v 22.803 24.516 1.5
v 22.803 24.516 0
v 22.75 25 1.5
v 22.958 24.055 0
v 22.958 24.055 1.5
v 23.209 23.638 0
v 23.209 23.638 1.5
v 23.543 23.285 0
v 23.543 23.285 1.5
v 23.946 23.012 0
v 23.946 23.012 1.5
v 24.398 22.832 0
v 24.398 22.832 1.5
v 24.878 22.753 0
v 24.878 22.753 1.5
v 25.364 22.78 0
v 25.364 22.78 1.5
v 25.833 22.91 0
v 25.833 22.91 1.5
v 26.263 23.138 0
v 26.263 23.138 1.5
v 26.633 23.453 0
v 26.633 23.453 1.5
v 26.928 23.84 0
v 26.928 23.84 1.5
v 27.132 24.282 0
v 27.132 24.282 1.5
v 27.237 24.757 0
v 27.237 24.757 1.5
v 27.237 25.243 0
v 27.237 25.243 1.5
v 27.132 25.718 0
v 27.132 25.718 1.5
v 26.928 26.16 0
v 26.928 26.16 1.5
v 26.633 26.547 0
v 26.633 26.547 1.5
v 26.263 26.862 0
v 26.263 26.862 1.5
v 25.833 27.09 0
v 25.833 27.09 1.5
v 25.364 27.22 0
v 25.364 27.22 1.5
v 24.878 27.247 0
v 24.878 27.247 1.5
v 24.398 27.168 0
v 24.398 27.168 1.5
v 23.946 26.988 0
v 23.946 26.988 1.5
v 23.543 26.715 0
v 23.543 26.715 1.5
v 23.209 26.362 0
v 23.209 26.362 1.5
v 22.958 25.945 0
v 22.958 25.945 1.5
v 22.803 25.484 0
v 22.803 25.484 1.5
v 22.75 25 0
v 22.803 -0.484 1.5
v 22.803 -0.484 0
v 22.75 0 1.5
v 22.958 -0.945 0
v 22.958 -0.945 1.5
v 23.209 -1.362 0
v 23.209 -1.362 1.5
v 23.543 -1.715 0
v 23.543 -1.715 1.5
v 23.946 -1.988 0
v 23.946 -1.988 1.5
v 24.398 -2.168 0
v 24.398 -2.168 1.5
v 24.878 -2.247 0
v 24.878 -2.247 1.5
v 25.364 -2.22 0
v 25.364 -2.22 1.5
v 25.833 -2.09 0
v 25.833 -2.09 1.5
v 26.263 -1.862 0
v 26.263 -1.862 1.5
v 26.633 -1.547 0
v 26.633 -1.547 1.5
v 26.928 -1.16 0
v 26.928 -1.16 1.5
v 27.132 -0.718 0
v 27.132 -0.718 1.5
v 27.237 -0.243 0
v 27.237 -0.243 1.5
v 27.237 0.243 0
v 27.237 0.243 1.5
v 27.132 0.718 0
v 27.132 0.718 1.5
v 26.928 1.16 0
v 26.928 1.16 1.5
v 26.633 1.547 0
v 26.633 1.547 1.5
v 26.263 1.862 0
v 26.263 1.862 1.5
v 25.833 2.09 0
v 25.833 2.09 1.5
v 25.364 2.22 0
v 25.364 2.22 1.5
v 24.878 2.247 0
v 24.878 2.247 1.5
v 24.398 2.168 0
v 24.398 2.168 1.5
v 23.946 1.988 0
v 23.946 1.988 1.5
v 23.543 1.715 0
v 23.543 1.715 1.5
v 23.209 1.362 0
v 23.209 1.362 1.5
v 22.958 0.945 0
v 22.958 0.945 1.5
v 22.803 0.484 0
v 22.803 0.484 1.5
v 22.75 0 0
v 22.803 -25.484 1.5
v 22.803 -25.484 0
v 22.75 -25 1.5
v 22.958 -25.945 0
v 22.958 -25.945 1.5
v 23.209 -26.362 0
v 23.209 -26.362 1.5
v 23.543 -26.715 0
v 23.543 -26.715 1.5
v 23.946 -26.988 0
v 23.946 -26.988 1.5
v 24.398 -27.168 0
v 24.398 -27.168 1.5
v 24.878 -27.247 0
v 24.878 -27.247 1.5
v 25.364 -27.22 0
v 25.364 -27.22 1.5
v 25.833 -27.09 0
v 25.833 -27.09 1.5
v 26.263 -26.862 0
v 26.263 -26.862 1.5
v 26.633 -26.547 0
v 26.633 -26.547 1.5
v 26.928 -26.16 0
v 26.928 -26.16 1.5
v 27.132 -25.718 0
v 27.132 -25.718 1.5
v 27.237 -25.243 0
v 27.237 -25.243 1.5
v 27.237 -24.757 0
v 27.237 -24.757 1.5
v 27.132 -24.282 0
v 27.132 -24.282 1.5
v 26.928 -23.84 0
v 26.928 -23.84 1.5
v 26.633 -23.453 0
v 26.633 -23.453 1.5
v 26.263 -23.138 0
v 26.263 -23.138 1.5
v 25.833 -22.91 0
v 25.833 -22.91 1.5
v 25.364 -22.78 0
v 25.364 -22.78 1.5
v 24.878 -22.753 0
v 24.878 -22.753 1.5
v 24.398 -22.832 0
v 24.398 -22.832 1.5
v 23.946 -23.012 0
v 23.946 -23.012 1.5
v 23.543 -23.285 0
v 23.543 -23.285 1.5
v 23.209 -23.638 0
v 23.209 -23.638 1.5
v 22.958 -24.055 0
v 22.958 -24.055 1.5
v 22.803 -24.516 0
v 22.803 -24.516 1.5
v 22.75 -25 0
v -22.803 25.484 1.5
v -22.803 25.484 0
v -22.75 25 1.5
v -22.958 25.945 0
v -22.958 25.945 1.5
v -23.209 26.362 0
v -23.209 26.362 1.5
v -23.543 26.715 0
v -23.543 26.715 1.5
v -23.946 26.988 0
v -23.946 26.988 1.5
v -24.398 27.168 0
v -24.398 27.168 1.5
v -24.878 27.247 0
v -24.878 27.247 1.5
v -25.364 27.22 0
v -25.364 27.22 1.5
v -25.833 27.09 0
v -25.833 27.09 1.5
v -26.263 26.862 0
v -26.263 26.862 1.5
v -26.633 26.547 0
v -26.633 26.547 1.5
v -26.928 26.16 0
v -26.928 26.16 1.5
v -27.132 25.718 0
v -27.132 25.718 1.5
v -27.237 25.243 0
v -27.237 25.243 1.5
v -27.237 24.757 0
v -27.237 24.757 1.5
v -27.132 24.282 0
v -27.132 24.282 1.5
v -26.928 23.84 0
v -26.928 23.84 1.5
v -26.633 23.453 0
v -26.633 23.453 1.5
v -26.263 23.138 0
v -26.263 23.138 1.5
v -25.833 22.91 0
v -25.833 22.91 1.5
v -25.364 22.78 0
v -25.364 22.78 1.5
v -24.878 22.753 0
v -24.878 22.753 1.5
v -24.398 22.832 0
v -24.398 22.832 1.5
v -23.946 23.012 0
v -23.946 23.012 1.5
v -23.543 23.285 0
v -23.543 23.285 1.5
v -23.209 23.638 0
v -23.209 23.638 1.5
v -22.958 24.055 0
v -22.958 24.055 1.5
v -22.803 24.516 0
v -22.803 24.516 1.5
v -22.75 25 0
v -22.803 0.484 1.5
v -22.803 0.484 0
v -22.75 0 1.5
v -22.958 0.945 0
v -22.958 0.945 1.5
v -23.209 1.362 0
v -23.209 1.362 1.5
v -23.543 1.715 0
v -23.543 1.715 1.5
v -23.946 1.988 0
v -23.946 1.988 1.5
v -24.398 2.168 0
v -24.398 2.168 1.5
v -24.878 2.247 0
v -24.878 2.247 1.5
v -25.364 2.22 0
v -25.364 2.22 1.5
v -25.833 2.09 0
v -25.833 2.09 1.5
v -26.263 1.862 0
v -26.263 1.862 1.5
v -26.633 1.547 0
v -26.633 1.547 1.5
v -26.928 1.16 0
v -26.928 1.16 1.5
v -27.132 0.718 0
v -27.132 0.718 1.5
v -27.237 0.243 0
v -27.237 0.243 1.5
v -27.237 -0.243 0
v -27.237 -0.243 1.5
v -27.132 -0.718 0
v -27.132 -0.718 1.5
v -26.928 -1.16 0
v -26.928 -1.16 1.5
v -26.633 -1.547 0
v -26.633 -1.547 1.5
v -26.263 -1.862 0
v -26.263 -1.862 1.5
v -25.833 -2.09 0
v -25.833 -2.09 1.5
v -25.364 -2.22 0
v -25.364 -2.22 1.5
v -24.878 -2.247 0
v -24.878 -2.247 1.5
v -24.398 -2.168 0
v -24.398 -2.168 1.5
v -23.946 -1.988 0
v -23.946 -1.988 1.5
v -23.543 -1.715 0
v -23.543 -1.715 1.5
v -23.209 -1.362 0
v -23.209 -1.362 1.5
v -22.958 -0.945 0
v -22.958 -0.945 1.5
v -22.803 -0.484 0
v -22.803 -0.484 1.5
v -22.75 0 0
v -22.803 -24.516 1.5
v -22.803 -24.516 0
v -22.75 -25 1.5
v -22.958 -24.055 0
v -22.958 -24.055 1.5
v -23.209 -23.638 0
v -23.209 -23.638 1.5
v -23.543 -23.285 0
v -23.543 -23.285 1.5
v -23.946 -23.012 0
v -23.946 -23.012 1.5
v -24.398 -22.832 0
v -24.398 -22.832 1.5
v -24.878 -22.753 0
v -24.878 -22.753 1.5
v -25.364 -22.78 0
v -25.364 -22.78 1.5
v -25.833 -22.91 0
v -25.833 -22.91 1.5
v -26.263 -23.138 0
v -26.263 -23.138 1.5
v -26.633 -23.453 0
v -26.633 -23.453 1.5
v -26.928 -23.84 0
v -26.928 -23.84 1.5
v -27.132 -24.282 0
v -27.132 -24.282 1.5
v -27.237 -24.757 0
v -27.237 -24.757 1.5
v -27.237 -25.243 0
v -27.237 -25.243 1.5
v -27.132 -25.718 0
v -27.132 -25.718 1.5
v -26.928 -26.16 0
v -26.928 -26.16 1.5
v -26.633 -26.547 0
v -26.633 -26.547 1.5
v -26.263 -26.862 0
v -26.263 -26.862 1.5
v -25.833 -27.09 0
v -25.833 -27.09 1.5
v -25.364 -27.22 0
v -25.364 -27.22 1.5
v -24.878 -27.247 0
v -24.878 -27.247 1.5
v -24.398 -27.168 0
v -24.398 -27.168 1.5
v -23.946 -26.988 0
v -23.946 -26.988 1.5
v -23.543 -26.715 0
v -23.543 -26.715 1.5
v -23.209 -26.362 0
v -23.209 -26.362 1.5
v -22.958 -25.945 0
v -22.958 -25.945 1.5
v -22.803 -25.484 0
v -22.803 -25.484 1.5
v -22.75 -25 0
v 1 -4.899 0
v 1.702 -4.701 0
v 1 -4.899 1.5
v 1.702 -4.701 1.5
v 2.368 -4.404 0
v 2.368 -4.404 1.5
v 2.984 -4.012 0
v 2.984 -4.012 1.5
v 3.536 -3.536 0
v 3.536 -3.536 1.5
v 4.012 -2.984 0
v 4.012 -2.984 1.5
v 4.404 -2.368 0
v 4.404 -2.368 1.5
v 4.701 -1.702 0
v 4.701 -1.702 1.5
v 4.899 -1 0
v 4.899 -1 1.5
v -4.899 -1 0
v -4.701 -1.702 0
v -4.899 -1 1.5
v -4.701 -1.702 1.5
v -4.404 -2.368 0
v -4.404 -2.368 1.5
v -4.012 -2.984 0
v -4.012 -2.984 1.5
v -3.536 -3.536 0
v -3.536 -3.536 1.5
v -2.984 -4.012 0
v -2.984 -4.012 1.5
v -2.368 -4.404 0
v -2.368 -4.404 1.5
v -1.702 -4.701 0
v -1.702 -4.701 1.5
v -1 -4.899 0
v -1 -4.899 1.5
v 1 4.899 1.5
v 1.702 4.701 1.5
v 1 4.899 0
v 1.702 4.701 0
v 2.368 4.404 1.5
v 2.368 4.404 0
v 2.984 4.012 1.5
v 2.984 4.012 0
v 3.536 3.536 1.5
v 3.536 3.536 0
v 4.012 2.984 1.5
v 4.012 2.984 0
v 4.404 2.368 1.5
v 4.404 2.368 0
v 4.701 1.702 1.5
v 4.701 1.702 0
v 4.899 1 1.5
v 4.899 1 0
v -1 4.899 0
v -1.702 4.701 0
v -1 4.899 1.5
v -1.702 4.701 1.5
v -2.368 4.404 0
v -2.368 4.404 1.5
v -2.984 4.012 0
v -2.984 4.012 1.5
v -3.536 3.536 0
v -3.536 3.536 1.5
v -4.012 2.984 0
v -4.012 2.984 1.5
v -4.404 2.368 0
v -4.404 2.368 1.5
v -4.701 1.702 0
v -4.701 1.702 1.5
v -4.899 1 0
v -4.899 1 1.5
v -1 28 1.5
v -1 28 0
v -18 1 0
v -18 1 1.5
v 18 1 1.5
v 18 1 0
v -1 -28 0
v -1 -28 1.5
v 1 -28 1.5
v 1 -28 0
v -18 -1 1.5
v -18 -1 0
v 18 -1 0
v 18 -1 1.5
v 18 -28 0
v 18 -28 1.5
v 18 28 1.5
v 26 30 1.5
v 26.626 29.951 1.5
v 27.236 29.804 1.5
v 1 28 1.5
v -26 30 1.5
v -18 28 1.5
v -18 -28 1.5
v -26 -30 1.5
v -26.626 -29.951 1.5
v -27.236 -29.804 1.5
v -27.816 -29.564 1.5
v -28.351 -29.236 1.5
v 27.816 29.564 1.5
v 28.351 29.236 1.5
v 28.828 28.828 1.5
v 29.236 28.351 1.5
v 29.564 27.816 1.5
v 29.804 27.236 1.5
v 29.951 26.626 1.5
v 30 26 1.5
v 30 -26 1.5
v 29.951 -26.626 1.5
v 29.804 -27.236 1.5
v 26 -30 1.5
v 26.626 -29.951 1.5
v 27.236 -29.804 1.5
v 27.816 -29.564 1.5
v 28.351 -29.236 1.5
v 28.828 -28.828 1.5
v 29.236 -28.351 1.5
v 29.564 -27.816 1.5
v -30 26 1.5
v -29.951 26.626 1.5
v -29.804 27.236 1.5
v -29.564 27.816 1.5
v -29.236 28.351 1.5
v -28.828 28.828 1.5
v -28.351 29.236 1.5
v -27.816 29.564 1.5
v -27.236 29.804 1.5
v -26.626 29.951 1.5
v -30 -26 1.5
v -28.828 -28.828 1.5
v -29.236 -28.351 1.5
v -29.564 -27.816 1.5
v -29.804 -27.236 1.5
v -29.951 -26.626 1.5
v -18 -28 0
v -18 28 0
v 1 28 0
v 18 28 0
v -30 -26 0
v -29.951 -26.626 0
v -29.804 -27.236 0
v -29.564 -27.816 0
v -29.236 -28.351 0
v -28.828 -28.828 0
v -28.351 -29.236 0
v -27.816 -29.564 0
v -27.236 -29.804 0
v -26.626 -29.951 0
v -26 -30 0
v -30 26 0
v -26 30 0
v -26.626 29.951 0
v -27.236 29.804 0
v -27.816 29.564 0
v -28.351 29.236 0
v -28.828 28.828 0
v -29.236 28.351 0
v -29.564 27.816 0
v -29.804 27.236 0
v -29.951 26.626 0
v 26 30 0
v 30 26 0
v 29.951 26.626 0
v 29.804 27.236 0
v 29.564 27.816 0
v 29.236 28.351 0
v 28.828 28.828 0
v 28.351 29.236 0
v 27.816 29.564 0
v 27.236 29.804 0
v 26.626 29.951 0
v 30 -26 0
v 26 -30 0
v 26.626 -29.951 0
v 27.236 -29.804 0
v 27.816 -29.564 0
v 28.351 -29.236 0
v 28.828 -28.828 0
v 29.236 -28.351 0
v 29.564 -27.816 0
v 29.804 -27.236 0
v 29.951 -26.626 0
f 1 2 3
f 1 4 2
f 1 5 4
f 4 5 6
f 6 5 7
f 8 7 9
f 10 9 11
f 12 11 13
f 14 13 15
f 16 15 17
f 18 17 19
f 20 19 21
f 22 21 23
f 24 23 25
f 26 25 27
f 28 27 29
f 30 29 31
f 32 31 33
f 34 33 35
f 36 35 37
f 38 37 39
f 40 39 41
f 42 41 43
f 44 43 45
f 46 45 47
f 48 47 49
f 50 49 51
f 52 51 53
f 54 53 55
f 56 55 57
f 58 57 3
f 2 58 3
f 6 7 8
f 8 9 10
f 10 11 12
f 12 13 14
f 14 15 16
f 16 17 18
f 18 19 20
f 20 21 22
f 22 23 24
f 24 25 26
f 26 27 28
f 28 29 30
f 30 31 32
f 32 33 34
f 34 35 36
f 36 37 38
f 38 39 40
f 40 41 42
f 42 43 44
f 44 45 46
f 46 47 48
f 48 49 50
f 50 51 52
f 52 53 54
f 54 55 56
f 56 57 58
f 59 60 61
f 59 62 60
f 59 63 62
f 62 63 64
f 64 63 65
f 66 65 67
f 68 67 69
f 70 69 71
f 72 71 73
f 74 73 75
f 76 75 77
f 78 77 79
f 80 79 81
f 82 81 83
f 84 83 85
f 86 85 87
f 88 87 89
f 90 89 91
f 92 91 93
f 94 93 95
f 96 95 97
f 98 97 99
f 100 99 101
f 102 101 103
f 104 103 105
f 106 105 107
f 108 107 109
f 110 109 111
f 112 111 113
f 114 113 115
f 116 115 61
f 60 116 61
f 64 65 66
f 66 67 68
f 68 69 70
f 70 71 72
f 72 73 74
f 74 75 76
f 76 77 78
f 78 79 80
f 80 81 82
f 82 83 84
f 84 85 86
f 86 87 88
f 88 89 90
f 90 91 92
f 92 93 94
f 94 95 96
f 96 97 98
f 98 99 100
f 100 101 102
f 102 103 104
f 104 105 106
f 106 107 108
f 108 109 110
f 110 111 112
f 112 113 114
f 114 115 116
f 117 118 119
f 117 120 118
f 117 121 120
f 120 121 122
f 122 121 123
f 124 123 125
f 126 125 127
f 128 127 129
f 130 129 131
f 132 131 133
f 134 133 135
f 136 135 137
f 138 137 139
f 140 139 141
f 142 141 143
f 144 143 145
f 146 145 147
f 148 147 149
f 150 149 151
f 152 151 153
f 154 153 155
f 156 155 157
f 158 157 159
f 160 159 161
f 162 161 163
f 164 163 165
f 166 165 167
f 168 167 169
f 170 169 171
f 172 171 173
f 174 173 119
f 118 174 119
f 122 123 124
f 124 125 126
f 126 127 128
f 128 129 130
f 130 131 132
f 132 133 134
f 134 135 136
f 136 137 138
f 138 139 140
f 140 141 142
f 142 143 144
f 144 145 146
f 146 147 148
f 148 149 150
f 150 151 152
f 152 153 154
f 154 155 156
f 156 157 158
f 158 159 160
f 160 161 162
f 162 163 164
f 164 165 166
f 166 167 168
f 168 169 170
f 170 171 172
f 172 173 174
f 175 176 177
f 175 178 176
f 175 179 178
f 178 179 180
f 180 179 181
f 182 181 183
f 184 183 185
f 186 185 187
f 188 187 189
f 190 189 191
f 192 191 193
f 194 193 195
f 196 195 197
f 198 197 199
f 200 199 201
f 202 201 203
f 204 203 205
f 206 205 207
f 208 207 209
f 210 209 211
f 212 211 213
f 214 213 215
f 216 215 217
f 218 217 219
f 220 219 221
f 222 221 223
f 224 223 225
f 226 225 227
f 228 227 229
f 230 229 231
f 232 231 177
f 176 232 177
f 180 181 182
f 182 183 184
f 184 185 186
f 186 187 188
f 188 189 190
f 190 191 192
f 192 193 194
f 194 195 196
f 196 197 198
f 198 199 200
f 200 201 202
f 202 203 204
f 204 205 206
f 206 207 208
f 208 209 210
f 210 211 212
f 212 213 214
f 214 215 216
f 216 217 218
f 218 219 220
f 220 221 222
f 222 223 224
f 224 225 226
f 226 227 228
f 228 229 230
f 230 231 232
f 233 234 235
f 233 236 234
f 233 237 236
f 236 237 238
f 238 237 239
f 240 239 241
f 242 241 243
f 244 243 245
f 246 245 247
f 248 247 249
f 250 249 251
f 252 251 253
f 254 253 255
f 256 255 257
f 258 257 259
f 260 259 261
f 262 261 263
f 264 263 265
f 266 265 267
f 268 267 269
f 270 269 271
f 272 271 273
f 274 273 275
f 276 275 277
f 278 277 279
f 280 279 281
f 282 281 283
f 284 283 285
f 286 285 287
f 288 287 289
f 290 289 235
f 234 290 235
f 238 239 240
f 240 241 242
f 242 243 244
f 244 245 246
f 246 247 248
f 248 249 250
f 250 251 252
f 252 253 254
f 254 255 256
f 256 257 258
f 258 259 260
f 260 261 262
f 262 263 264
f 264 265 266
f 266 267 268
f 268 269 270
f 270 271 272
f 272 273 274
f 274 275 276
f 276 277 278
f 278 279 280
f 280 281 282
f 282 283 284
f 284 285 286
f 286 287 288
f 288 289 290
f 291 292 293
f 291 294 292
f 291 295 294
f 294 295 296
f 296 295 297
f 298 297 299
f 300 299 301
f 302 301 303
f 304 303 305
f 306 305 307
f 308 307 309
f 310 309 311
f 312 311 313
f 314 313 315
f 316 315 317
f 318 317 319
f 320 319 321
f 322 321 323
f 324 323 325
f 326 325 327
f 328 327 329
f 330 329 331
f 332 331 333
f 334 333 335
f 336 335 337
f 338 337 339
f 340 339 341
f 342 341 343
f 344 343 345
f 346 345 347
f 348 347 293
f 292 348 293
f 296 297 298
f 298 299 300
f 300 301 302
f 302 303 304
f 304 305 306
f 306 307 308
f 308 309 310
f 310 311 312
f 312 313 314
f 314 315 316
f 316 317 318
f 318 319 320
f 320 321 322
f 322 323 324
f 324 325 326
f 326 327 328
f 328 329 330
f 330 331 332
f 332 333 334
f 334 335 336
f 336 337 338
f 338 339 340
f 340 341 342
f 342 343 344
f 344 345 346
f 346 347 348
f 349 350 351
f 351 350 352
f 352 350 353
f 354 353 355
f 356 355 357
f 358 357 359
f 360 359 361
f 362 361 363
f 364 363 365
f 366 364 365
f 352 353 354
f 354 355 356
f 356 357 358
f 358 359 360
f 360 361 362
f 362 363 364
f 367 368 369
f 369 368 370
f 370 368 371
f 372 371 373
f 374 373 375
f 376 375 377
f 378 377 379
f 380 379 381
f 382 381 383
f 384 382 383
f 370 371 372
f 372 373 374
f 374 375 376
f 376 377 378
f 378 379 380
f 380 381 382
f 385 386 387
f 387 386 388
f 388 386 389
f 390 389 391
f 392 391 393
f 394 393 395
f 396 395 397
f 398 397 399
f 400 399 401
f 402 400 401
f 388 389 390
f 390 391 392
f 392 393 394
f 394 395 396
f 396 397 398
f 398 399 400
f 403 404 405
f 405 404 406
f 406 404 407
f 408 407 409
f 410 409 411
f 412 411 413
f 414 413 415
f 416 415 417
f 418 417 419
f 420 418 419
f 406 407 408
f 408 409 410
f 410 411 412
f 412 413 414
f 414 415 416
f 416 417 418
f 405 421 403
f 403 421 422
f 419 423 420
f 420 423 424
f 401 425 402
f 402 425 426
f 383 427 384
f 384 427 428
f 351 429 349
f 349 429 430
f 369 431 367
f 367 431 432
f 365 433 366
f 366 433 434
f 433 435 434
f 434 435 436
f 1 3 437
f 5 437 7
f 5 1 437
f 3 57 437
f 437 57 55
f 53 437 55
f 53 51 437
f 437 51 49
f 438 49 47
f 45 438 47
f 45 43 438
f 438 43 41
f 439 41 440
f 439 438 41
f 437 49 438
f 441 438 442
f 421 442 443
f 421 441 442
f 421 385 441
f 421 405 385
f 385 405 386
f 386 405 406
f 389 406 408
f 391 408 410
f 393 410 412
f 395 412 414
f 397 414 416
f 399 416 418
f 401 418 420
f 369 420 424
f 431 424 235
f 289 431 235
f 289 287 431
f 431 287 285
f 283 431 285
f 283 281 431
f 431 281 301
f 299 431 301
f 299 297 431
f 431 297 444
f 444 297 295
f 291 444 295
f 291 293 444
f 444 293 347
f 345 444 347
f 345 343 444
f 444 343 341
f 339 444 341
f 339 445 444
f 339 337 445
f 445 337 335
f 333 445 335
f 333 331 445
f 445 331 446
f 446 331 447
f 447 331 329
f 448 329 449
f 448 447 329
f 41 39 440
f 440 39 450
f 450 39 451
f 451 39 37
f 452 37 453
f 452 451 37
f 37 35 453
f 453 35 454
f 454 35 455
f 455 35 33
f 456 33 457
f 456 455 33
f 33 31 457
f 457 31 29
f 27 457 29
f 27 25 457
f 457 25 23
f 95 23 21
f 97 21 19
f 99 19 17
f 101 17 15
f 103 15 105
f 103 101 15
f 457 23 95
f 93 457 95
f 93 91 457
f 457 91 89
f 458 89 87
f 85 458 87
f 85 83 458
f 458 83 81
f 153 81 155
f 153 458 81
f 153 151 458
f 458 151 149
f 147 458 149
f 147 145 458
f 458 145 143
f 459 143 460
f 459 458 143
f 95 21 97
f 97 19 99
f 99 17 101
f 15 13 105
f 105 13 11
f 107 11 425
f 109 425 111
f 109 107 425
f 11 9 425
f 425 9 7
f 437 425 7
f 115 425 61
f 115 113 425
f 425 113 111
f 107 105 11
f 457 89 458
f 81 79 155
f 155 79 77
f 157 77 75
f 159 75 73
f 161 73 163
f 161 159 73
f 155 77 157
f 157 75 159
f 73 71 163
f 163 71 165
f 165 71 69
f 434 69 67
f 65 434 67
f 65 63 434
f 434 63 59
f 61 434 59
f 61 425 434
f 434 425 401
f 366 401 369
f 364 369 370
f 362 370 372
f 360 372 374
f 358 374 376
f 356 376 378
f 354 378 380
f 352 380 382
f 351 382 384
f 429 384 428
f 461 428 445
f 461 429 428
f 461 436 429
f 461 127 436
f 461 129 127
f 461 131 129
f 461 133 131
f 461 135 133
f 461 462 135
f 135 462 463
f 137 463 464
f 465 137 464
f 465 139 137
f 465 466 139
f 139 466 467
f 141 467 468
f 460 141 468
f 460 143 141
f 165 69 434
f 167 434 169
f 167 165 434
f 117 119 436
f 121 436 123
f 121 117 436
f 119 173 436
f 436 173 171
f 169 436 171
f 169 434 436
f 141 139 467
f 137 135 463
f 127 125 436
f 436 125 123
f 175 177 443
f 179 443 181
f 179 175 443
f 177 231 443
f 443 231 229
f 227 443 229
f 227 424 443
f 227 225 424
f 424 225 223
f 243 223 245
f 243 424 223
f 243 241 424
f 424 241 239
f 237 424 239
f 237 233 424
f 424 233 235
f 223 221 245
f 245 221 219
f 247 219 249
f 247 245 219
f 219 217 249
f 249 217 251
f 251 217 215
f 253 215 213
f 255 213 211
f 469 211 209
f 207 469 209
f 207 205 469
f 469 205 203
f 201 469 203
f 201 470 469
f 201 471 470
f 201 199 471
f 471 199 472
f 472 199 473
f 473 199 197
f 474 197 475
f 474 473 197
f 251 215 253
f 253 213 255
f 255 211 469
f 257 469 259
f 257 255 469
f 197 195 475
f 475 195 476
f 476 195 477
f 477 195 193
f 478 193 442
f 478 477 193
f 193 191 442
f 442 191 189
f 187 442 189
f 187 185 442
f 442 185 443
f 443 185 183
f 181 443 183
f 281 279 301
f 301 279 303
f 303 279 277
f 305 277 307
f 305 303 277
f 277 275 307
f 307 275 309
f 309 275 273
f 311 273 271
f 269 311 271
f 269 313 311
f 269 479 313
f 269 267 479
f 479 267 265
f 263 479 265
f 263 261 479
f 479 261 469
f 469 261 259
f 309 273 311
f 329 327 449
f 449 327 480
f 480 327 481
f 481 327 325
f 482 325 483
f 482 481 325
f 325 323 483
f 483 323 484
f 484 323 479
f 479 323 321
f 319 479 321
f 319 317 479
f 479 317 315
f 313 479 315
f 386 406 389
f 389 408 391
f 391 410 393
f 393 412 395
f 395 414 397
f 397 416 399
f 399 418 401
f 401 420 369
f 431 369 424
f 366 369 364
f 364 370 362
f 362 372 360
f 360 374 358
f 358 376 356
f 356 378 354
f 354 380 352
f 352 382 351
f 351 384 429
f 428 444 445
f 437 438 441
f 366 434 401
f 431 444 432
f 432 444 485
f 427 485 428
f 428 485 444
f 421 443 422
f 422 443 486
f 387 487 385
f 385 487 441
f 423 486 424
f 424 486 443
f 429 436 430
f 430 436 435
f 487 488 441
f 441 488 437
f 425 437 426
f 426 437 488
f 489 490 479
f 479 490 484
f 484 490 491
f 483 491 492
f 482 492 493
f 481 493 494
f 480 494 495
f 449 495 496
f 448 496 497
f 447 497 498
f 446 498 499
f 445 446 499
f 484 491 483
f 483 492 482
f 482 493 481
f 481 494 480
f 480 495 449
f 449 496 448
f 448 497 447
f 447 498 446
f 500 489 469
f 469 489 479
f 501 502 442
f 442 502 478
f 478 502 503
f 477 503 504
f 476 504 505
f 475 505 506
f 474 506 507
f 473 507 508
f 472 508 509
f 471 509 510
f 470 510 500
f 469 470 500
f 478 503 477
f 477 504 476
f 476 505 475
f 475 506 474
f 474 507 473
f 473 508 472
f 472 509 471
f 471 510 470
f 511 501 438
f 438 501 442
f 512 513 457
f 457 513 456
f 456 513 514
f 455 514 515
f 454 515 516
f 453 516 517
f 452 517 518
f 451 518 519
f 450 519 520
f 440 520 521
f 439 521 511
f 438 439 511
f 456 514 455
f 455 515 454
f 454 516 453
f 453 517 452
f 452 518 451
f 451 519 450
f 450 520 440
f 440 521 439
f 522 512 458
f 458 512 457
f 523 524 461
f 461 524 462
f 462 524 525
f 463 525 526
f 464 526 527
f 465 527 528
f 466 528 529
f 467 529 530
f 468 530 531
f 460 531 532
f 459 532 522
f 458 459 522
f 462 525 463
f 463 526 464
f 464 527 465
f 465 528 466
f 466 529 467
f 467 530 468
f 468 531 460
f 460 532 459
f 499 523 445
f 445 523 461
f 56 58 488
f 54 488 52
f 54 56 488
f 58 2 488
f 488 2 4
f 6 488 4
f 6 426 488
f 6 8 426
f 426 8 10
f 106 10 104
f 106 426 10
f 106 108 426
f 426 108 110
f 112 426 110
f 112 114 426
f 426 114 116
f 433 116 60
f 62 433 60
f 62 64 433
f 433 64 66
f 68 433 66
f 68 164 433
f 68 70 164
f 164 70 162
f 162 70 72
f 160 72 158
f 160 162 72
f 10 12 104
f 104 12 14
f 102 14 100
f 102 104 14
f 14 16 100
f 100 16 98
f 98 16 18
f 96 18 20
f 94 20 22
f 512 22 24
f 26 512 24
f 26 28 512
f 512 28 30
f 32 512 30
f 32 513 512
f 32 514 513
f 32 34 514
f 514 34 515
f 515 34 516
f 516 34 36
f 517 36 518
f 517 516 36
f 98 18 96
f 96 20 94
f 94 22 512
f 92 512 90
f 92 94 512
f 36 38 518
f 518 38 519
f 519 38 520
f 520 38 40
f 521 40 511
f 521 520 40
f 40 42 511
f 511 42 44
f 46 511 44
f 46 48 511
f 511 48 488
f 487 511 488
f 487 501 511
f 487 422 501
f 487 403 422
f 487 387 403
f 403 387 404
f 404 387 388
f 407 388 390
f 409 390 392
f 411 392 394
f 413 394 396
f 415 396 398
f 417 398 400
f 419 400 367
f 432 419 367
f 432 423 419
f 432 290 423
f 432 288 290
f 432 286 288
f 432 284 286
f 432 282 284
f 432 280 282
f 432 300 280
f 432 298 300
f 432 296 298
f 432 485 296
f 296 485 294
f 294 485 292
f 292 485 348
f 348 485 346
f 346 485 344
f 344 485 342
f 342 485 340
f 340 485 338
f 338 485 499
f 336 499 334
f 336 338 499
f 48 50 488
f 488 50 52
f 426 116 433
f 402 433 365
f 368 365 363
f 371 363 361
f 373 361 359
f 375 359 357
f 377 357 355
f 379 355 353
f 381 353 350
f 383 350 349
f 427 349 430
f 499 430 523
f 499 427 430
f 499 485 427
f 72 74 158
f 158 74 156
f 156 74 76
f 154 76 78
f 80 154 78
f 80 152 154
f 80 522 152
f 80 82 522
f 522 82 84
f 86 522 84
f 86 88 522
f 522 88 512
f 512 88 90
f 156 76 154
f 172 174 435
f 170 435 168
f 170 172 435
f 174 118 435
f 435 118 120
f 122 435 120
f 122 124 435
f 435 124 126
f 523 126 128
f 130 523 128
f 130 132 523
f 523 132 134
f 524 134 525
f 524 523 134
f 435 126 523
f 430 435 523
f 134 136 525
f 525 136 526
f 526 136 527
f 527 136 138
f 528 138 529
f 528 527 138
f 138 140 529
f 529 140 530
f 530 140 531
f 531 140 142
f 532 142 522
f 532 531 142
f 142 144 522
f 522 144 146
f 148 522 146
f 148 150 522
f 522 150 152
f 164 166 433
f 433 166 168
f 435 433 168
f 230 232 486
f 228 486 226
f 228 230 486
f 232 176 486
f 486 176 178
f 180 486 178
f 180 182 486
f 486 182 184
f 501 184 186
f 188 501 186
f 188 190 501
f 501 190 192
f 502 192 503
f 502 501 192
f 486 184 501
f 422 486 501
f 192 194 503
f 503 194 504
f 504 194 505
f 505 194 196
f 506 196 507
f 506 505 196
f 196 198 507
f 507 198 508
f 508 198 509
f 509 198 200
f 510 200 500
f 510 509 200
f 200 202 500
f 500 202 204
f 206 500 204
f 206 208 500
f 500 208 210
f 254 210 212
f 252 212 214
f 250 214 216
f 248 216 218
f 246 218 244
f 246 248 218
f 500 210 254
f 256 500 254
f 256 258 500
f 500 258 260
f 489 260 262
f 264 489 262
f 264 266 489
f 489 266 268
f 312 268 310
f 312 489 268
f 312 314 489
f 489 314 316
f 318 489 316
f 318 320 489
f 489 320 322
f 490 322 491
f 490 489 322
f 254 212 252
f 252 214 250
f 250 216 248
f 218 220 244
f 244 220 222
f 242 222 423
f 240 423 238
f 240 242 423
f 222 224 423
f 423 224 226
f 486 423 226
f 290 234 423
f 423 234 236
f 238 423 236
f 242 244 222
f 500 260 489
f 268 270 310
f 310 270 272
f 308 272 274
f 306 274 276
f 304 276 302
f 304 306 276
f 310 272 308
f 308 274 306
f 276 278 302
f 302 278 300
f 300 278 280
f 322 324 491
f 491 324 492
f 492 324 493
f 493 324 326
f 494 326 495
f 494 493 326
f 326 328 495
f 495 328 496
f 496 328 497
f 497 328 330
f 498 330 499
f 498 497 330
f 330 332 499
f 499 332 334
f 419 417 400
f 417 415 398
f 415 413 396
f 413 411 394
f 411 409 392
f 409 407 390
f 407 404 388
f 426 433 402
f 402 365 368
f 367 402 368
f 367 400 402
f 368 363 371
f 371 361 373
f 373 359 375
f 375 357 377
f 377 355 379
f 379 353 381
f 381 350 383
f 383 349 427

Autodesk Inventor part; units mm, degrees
ref_plane "YZ Plane" through (0, 0, 0) normal (1, 0, 0) x (0, 1, 0)
ref_plane "XZ Plane" through (0, 0, 0) normal (0, 1, 0) x (-1, 0, 0)
ref_plane "XY Plane" through (0, 0, 0) normal (0, 0, 1) x (1, 0, 0)
sketch "Sketch1" plane through (0, 0, 0) normal (0, 0, 1) x (1, 0, 0)
  line L0 (-20, 30) -> (20, 30)
  line L1 (20, 30) -> (20, -30)
  line L2 (20, -30) -> (-20, -30)
  line L3 (-20, -30) -> (-20, 30)
  line L4 (-20, 30) -> (-26, 30)
  line L5 (-30, 26) -> (-30, -26)
  line L6 (-26, -30) -> (-20, -30)
  line L7 (-20, -30) -> (-20, 30)
  line L8 (20, 30) -> (26, 30)
  line L9 (30, 26) -> (30, -26)
  line L10 (26, -30) -> (20, -30)
  line L11 (20, -30) -> (20, 30)
  line L12 (-43.9092, 0) -> (47.176, 0) construction
  circle A0 centre (-25, 0) radius 2.25
  line L13 (-30, 20) -> (30, 20) construction
  circle A1 centre (-25, 25) radius 2.25
  line L14 (-30, -20) -> (30, -20) construction
  circle A2 centre (-25, -25) radius 2.25
  line L15 (-30, 5) -> (30, 5) construction
  line L16 (-30, -5) -> (30, -5) construction
  line L17 (-28, 18) -> (-22, 18)
  line L18 (-22, 18) -> (-22, 7)
  line L19 (-22, 7) -> (-28, 7)
  line L20 (-28, 7) -> (-28, 18)
  line L21 (-18, 28) -> (18, 28)
  line L22 (18, 28) -> (18, -28)
  line L23 (18, -28) -> (-18, -28)
  line L24 (-18, -28) -> (-18, 28)
  line L25 (-18, 1) -> (18, 1)
  line L26 (18, 1) -> (18, -1)
  line L27 (18, -1) -> (-18, -1)
  line L28 (-18, -1) -> (-18, 1)
  line L29 (-1, 28) -> (1, 28)
  line L30 (1, 28) -> (1, -28)
  line L31 (1, -28) -> (-1, -28)
  line L32 (-1, -28) -> (-1, 28)
  arc A3 (-26, 30) -> (-30, 26) centre (-26, 26) ccw
  arc A4 (-30, -26) -> (-26, -30) centre (-26, -26) ccw
  arc A5 (26, -30) -> (30, -26) centre (26, -26) ccw
  arc A6 (30, 26) -> (26, 30) centre (26, 26) ccw
  circle A7 centre (0, 0) radius 5
  point P0 (0, 30)
  point P1 (20, 0)
  point P2 (-30, -30)
  point P3 (30, -30)
  point P4 (-18, 0)
  point P5 (0, 28)
  dimension "d0" = 40
  dimension "d1" = 60
  dimension "d2" = 10
  dimension "d3" = 10
  dimension "d4" = 4.5
  dimension "d5" = 10
  dimension "d6" = 4.5
  dimension "d7" = 5
  dimension "d8" = 4.5
  dimension "d9" = 5
  dimension "d10" = 5
  dimension "d11" = 5
  dimension "d12" = 5
  dimension "d13" = 10
  dimension "d14" = 5
  dimension "d15" = 5
  dimension "d16" = 2
  dimension "d17" = 2
  dimension "d18" = 2
  dimension "d19" = 2
  dimension "d20" = 2
  dimension "d21" = 2
  dimension "d22" = 2
  dimension "d23" = 2
  dimension "d24" = 2
  dimension "d25" = 2
  dimension "d26" = 4
  dimension "d33" = 10
extrude "Extrusion1" add sketch "Sketch1" along normal blind 1.5 contours L0 L1 L2 L3 | L3 L6 A4 L5 A3 L4 | L8 A6 L9 A5 L10 L1 | A0 | A1 | A2 | L17 L18 L19 L20 | L21 L30 A7 L32 | L25 A7 L27 L24 | A7 L30 L25 L32 | L32 L25 A7 | L25 L32 L27 A7 | A7 L25 L30 | L25 L30 L27 L32 | L27 L32 A7 | L22 L27 A7 L25 | L25 A7 L27 L30 | L27 L30 A7 L32 | L32 A7 L30 L23 | L27 A7 L30
extrude "Extrusion2" cut sketch "Sketch1" along normal blind 2 contours A0 | A1 | A2
mirror "Mirror2" about plane through (0, 0, 0) normal (1, 0, 0) of "Extrusion2"
equation "\"d4\" = screw"
equation "\"d6\" = screw"
equation "\"d8\" = screw"
equation "\"screw\" = 4.5"
properties part number "MechBottomPlate"
